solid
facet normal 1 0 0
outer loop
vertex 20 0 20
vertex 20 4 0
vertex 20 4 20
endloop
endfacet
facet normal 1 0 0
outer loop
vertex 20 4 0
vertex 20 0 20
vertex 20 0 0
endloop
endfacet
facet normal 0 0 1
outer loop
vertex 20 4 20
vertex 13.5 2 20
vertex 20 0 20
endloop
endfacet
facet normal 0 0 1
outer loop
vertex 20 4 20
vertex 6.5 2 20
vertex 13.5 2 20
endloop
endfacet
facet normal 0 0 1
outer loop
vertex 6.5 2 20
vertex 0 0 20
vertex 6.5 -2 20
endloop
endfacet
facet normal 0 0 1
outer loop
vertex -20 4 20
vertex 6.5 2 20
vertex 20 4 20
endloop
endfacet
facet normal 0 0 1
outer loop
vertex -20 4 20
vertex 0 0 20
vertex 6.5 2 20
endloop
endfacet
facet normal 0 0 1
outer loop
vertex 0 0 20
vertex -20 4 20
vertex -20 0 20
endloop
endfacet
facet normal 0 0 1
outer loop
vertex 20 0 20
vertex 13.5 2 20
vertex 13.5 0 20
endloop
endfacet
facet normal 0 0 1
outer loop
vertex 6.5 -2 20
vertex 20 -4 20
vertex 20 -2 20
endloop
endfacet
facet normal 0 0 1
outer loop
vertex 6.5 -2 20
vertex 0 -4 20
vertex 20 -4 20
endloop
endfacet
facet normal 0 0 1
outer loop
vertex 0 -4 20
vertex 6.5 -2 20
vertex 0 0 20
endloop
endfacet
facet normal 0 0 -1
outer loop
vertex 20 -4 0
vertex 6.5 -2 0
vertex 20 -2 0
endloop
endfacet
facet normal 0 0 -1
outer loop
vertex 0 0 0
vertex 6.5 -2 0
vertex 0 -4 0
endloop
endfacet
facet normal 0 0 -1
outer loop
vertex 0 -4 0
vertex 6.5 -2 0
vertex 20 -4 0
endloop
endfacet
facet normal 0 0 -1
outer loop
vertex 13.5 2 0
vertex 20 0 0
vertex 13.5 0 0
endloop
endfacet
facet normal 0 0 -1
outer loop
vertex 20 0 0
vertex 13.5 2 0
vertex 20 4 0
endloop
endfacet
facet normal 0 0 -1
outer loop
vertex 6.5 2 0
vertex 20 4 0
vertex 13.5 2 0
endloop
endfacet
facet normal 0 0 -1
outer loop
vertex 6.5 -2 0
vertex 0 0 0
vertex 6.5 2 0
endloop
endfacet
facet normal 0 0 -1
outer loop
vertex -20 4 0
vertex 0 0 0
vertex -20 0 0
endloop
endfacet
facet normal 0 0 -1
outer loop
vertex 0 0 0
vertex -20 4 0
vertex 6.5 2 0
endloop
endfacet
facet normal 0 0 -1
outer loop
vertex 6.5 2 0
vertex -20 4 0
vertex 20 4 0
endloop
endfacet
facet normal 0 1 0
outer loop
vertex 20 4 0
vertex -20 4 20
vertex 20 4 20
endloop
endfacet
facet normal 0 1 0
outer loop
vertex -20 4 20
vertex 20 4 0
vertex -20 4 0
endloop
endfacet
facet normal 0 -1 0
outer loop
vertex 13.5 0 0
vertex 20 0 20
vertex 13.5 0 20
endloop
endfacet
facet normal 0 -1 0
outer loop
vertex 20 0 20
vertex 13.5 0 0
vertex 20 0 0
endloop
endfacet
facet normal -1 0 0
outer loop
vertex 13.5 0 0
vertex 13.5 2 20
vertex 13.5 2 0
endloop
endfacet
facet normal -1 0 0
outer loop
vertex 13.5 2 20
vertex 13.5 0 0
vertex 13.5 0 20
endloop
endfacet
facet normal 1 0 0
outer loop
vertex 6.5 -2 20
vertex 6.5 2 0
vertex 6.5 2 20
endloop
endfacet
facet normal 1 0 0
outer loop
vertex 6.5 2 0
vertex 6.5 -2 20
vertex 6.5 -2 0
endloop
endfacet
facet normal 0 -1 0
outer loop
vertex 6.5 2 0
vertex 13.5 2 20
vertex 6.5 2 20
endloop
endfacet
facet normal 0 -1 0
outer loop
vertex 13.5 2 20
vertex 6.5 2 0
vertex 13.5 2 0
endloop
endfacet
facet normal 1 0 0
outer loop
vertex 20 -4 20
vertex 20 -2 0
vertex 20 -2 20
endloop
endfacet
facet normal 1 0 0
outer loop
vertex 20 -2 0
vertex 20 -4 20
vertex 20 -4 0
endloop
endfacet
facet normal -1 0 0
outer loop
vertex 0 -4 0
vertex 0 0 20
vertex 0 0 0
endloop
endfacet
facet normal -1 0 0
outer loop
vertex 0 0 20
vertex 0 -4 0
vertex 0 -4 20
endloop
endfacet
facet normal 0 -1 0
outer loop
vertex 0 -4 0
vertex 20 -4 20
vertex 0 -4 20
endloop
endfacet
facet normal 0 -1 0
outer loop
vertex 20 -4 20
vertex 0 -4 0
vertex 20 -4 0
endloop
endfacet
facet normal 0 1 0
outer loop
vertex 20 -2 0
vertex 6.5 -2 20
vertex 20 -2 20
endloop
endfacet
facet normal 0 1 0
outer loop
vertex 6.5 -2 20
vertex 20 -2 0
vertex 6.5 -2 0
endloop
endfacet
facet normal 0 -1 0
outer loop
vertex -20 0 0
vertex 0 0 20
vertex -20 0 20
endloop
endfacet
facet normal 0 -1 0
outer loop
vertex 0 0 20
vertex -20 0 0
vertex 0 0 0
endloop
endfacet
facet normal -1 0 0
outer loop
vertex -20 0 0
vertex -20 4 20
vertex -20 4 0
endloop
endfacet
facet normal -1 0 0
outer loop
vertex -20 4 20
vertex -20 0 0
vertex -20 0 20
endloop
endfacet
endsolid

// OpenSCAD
LENGTH = 20;
WIDTH = 20;
HEIGHT = 4;

CUT_WIDTH = 7;
CUT_HEIGHT = 2;

union()
{
	difference()
	{
		cube([WIDTH,HEIGHT,LENGTH]);
		translate([WIDTH/2-CUT_WIDTH/2,0,0])cube([CUT_WIDTH,CUT_HEIGHT,LENGTH]);
	}
	
	difference()
	{
		mirror([0,1,0])cube([WIDTH,HEIGHT,LENGTH]);
		mirror([0,1,0])translate([WIDTH/2-CUT_WIDTH/2,0,0])cube([WIDTH,CUT_HEIGHT,LENGTH]);
	}

	mirror([1,0,0])cube([WIDTH,HEIGHT,LENGTH]);
	

}
